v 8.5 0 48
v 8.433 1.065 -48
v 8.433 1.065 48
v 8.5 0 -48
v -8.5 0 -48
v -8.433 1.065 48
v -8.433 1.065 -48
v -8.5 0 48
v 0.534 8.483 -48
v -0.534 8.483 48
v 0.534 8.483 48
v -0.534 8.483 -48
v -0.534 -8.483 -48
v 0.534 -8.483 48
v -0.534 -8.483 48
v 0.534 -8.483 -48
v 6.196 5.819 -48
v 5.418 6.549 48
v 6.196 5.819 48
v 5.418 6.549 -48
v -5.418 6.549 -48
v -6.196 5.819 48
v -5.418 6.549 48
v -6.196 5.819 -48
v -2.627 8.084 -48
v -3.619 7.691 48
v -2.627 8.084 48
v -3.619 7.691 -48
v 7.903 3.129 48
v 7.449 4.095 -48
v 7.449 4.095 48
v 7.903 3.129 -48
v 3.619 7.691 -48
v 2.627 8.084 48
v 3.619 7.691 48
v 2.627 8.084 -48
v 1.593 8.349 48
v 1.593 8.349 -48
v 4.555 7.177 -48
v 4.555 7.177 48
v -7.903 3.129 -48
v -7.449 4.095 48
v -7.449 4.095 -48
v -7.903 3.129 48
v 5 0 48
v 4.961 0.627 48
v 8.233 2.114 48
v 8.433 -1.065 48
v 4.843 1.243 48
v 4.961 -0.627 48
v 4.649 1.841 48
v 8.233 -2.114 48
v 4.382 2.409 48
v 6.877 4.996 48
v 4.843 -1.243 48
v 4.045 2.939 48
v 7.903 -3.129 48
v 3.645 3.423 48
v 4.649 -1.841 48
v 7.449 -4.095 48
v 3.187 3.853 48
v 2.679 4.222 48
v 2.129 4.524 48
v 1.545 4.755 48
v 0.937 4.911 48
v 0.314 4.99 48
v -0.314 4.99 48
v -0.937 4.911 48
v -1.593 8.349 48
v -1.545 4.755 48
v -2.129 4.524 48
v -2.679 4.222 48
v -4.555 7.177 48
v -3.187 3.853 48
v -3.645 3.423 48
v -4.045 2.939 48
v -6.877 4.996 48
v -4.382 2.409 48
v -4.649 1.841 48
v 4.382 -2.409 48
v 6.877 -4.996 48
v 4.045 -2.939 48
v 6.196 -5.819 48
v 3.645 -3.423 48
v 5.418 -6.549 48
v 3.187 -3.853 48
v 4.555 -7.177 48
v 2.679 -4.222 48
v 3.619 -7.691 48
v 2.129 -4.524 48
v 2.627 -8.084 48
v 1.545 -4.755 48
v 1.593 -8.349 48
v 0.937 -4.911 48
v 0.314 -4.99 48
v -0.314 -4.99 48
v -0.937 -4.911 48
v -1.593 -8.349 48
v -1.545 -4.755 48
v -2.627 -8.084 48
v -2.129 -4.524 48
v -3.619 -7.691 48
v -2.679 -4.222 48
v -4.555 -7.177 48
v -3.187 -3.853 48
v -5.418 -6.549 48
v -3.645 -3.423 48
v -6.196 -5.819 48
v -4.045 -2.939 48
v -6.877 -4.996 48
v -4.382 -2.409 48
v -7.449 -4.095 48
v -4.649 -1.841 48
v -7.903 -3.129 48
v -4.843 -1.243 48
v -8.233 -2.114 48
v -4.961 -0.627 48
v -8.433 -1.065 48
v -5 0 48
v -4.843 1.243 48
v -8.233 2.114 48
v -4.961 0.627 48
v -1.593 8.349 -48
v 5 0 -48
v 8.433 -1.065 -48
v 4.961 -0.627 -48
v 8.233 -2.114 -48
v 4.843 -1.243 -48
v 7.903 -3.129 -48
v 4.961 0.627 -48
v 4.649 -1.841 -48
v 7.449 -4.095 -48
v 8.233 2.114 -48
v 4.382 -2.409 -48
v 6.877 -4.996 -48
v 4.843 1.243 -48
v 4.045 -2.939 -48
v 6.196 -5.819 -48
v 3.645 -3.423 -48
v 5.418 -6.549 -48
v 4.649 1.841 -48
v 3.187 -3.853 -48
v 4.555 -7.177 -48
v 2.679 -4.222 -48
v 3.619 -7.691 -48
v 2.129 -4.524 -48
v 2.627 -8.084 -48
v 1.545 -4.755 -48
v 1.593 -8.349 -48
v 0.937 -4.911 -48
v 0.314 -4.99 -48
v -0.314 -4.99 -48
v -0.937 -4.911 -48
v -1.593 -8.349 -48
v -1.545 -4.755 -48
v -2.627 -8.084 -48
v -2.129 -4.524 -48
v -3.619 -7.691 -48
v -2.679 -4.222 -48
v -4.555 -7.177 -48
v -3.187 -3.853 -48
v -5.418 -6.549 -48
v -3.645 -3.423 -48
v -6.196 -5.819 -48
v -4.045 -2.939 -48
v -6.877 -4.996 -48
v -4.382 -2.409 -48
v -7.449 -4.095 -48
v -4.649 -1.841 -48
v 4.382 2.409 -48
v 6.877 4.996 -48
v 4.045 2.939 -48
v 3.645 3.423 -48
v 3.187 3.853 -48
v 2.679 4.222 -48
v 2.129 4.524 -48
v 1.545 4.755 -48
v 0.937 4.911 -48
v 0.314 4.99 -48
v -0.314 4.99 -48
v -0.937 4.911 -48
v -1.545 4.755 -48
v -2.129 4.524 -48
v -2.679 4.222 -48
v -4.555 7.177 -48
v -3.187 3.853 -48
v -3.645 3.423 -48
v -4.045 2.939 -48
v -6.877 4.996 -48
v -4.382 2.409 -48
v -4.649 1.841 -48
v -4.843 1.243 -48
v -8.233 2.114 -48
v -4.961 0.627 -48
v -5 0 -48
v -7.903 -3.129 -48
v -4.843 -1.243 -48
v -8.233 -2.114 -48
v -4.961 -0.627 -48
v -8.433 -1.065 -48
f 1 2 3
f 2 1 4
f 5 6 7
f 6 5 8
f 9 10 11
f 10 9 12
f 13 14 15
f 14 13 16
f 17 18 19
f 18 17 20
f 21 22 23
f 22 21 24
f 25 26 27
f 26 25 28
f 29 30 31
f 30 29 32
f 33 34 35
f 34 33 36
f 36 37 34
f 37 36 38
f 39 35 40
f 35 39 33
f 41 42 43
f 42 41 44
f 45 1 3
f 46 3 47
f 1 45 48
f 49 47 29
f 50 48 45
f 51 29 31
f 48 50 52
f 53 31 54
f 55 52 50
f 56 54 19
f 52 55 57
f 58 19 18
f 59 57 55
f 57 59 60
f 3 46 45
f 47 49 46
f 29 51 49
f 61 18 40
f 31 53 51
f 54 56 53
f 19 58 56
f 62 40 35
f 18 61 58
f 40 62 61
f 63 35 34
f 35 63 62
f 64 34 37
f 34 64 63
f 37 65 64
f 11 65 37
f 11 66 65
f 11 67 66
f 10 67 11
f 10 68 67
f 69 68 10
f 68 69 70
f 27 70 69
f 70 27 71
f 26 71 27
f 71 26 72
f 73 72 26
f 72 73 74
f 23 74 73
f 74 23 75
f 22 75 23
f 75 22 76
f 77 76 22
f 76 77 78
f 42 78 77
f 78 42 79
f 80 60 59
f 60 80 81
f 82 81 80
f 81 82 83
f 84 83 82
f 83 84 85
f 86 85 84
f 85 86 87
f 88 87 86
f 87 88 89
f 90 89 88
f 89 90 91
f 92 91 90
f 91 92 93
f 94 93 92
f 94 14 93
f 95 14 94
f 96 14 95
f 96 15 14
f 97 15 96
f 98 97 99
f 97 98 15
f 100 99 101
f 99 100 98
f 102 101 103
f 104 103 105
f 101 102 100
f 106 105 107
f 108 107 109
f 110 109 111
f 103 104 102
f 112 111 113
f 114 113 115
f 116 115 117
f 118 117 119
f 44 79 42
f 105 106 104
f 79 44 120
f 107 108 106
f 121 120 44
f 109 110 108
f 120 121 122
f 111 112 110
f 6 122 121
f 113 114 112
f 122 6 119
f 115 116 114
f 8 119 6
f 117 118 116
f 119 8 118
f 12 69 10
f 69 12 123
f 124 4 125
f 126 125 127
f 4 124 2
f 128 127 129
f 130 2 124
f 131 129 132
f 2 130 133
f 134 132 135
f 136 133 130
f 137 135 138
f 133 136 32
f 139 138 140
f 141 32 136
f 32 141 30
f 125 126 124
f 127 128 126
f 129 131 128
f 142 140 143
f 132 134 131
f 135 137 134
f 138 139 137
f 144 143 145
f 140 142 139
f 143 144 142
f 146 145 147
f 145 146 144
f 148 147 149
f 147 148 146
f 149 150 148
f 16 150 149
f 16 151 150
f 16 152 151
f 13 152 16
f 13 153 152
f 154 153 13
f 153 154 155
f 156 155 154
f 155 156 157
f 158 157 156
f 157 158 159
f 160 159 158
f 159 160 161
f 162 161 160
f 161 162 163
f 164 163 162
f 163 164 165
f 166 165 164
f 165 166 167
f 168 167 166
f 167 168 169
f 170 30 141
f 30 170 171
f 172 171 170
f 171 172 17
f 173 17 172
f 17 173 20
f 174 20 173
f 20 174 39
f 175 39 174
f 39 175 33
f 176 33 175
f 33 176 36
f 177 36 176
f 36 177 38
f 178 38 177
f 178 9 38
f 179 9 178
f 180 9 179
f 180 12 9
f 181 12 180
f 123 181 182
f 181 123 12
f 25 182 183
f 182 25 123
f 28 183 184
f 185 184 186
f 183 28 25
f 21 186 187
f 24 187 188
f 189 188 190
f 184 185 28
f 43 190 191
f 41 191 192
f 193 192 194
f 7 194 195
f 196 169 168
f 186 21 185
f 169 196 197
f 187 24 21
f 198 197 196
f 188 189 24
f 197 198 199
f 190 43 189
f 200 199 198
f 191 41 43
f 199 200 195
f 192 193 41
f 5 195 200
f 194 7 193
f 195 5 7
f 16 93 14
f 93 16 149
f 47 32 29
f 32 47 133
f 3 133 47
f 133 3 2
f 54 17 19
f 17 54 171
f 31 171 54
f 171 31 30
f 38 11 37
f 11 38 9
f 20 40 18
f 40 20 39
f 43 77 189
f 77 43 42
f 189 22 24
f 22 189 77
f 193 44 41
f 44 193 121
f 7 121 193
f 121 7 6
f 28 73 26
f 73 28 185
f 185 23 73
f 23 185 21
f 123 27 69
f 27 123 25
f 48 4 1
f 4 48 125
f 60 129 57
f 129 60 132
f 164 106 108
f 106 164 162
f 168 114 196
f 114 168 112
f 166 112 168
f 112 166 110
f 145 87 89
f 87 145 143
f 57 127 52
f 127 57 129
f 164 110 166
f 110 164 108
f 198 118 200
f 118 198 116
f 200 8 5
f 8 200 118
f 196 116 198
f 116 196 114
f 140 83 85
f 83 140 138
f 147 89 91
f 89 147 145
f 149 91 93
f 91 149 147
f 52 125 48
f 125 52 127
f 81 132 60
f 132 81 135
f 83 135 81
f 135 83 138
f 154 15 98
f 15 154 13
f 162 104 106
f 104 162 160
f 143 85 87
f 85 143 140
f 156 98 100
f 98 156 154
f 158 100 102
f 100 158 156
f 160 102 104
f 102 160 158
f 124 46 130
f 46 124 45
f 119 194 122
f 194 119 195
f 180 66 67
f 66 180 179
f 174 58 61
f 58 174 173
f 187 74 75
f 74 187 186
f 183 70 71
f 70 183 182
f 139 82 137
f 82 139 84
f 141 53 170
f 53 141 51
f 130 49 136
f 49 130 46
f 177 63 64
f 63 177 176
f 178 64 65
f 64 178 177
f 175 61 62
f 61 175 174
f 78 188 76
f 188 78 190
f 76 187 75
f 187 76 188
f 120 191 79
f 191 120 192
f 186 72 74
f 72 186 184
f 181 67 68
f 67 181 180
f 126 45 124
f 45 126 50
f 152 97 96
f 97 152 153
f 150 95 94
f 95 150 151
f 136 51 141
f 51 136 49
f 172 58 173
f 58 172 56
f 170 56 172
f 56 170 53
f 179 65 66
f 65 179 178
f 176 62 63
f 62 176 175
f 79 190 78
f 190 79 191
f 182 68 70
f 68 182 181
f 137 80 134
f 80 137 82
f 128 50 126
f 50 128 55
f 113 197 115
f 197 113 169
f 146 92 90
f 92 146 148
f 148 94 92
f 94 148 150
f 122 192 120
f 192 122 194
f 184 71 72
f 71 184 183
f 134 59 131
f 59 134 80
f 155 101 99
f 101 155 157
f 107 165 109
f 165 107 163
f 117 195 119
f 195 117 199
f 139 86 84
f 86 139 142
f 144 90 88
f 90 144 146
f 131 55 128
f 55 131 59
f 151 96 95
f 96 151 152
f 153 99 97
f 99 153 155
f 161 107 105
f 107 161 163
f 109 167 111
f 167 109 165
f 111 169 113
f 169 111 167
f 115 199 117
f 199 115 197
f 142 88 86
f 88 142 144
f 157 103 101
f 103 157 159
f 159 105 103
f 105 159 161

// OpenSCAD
$fn = 50;


difference() {
	union() {
		translate(v = [0, 0, -48.0000000000]) {
			cylinder(h = 96, r = 8.5000000000);
		}
	}
	union() {
		translate(v = [0, 0, -100.0000000000]) {
			cylinder(h = 200, r = 5.0000000000);
		}
	}
}
